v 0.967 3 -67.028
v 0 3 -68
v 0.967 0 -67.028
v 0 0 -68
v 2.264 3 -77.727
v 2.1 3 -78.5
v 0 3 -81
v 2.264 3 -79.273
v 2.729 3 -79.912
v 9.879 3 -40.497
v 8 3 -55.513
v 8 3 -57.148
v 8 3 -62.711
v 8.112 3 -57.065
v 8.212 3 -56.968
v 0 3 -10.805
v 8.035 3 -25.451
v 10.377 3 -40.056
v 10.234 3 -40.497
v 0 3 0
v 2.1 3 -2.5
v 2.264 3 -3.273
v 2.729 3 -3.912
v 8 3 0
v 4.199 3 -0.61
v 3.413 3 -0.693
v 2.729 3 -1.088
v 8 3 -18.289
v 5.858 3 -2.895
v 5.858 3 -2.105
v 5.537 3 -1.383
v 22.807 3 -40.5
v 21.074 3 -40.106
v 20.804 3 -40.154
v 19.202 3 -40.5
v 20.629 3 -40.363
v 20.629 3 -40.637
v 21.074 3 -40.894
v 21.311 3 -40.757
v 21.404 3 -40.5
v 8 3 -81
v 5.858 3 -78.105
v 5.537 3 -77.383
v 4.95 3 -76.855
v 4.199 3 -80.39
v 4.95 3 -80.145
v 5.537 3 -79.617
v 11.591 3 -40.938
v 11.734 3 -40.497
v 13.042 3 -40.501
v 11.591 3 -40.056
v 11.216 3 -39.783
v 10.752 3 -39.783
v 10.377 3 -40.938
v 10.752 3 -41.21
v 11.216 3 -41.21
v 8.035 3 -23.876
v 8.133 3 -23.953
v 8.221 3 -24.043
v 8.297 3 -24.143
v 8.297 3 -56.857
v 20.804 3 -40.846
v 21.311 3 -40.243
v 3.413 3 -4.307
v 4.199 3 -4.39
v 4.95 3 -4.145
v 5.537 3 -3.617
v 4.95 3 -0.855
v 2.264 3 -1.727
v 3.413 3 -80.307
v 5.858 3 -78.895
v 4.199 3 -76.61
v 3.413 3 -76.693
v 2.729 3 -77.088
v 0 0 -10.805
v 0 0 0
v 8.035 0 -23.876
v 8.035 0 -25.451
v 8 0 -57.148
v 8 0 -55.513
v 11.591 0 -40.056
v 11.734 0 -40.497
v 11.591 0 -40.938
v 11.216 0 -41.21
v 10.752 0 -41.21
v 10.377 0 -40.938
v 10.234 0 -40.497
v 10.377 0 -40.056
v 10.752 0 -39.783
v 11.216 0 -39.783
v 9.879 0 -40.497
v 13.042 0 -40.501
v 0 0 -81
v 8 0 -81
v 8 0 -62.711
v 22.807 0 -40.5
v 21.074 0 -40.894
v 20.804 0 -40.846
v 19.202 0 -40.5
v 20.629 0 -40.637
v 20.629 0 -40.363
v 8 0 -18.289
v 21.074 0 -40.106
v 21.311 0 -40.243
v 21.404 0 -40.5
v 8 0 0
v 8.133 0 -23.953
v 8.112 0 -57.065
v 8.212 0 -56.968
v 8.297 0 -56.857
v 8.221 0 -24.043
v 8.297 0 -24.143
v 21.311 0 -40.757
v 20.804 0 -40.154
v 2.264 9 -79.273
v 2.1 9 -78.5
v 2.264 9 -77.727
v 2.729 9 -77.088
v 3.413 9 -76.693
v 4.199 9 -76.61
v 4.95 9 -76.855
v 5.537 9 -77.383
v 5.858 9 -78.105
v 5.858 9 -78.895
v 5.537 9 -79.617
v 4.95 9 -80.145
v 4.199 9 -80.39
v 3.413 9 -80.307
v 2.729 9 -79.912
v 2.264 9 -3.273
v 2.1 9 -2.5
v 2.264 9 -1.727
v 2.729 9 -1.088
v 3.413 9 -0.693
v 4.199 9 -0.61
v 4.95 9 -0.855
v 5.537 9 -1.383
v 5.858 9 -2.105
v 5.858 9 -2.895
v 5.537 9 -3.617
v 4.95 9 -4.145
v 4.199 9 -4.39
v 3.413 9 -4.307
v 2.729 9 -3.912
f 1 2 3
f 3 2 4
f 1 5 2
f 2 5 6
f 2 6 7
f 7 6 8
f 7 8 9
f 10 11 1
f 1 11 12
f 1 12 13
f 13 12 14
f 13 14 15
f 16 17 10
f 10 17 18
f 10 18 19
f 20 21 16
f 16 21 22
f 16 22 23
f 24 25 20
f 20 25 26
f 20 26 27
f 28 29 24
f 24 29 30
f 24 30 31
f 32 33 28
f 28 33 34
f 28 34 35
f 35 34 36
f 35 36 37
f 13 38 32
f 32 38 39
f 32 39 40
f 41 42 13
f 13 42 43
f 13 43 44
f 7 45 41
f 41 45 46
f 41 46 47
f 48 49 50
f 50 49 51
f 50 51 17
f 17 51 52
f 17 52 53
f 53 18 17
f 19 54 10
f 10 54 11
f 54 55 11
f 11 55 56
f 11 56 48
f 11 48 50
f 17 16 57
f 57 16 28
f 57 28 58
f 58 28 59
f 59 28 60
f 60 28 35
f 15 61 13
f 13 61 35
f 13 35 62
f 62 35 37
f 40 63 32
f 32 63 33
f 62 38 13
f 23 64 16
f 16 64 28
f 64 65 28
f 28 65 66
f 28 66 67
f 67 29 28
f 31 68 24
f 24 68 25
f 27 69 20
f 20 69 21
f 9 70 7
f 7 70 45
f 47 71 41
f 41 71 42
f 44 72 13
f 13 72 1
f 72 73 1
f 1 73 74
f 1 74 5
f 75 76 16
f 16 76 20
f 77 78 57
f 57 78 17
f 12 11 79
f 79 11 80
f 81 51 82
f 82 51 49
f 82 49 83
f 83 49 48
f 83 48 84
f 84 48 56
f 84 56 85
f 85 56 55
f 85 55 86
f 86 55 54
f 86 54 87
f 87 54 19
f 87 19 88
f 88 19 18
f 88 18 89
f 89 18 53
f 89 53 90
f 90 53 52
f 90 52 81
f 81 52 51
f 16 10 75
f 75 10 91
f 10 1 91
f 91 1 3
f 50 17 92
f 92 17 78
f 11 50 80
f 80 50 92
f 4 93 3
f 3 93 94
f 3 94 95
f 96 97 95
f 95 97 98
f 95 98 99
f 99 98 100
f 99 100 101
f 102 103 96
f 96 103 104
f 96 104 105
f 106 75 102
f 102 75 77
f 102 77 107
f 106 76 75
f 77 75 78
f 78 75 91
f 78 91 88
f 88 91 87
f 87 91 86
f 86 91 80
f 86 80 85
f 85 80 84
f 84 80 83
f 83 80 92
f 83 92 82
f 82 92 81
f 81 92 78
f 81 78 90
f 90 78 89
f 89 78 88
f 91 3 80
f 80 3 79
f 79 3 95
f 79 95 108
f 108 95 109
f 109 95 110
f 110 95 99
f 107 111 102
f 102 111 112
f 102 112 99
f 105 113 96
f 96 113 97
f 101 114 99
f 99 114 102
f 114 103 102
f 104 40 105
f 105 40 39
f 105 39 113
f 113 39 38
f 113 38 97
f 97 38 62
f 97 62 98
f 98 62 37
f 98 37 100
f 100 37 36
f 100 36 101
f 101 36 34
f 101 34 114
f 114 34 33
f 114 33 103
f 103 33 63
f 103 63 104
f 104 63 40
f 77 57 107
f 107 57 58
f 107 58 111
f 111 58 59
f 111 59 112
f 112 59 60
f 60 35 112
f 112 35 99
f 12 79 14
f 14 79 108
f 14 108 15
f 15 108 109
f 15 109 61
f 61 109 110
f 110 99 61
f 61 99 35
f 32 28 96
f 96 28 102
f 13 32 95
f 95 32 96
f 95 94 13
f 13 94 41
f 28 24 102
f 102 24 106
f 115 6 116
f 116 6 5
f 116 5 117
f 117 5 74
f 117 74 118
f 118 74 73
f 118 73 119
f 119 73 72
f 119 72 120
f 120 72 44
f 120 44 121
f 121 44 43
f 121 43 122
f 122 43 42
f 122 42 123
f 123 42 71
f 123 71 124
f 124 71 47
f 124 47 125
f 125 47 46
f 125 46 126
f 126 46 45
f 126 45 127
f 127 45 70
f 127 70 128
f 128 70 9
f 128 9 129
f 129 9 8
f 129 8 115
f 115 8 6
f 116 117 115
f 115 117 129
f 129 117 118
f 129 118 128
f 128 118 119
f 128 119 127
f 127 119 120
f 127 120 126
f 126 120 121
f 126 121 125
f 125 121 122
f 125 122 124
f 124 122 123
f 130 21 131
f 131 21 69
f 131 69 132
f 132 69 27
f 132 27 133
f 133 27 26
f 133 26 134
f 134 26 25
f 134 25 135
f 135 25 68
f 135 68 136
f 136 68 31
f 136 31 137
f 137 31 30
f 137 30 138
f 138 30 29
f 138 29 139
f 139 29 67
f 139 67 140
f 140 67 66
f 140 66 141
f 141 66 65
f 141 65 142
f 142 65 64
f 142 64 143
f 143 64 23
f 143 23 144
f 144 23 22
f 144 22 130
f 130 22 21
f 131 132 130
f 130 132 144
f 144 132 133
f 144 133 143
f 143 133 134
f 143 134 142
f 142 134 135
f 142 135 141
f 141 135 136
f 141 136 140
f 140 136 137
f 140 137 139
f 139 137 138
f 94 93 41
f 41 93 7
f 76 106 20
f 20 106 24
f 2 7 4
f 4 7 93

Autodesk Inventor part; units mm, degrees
ref_plane "YZ Plane" through (0, 0, 0) normal (1, 0, 0) x (0, 1, 0)
ref_plane "XZ Plane" through (0, 0, 0) normal (0, 1, 0) x (-1, 0, 0)
ref_plane "XY Plane" through (0, 0, 0) normal (0, 0, 1) x (1, 0, 0)
sketch "Sketch1" plane through (0, 0, 0) normal (0, 1, 0) x (-1, 0, 0)
  line L0 (0, 0) -> (0, -81)
  line L1 (0, -81) -> (-8, -81)
  line L2 (-8, -81) -> (-8, 0)
  line L3 (0, 0) -> (-8, 0)
  line L4 (-4, 0) -> (-4, -2.5)
  line L5 (-4, -81) -> (-4, -78.5)
  circle A0 centre (-4, -2.5) radius 1.9
  circle A1 centre (-4, -78.5) radius 1.9
  dimension "d0" = 81
  dimension "d1" = 8
  dimension "d2" = 81
  dimension "d3" = 2.5
  dimension "d4" = 2.5
  dimension "d5" = 3.8
  dimension "d6" = 3.8
extrude "Extrusion1" add sketch "Sketch1" along normal blind 3
extrude "Extrusion2" add sketch "Sketch1" along normal blind 9 contours A0 | A1
sketch "Sketch2" plane through (0, 3, 0) normal (0, 1, 0) x (1, 0, 0)
  line L0 (8, 0) -> (8, 81) projected
  line L1 (8, 40.5) -> (18, 40.5)
  line L2 (8, 40.5) -> (8, 25.5)
  line L3 (8, 25.5) -> (0, 25.5)
  line L4 (0, 81) -> (0, 0) projected
  line L5 (8, 40.5) -> (8, 55.5)
  line L6 (8, 55.5) -> (0, 55.5)
  line L7 (0, 55.5) -> (0, 25.5)
  line L8 (8, 25.5) -> (18, 40.5)
  line L9 (8, 55.5) -> (18, 40.5)
  line L10 (8.8321, 24.9453) -> (18.8321, 39.9453)
  line L11 (8.8321, 56.0547) -> (18.8321, 41.0547)
  line L12 (8.8321, 24.9453) -> (8, 23.6972)
  line L13 (8, 23.6972) -> (8, 25.5)
  line L14 (8, 55.5) -> (8, 57.3028)
  line L15 (8.8321, 56.0547) -> (8, 57.3028)
  line L16 (18.8321, 39.9453) -> (19.2019, 40.5)
  line L17 (18.8321, 41.0547) -> (19.2019, 40.5)
  line L18 (5, 25.5) -> (5, 13.7889)
  line L19 (5, 13.7889) -> (11.3282, 23.2812)
  line L20 (11.3282, 23.2812) -> (21.3282, 38.2812)
  line L21 (21.3282, 38.2812) -> (22.8074, 40.5)
  line L22 (22.8074, 40.5) -> (21.3282, 42.7188)
  line L23 (21.3282, 42.7188) -> (11.3282, 57.7188)
  line L24 (11.3282, 57.7188) -> (5, 67.2111)
  line L25 (5, 67.2111) -> (5, 55.5)
  line L26 (8, 23.6972) -> (0, 23.6972)
  line L27 (0, 25.5) -> (0, 23.6972)
  line L28 (8, 57.3028) -> (0, 57.3028)
  line L29 (0, 57.3028) -> (0, 55.5)
  point P0 (8, 18.2889)
  point P1 (8, 62.7111)
  dimension "d11" = 10
  dimension "d12" = 15
  dimension "d13" = 15
  dimension "d14" = 1
  dimension "d15" = 1
  dimension "d16" = 3
extrude "Extrusion3" add sketch "Sketch2" against normal blind 3 contours L12 L10 L16 L17 L11 L15 L0 L24 L23 L22 L21 L20 L19
extrude "Extrusion4" cut sketch "Sketch2" against normal blind 3 contours L26 L18 L3 L0 | L3 L4 L6 L0 | L26 L4 L3 L18 | L6 L25 L28 L0 | L6 L4 L28 L25
chamfer "Chamfer1" distance 3 angle 45 2 edges at (0, 1.5, -57.3028) (0, 1.5, -23.6972)
fillet "Fillet1" radius 1 2 edges at (8, 1.5, -57.3028) (8, 1.5, -23.6972)
sketch "Sketch3" plane through (0, 3, 0) normal (0, 1, 0) x (1, 0, 0)
  line L0 (22.8074, 40.5) -> (8, 62.7111) projected
  line L1 (22.8074, 40.5) -> (21.0044, 40.5)
  circle A0 centre (21.0044, 40.5) radius 0.4
  point P0 (0, 0)
  dimension "d25" = 1.803
  dimension "d26" = 0.8
extrude "Extrusion5" cut sketch "Sketch3" against normal blind 3
sketch "Sketch4" plane through (0, 3, 0) normal (0, 1, 0) x (1, 0, 0)
  line L0 (0, 57.3028) -> (8.0349, 57.3028)
  line L1 (0, 57.3028) -> (0, 23.6972)
  line L2 (0, 23.6972) -> (8.0349, 23.6972)
  line L3 (8.0349, 23.6972) -> (8.0349, 57.3028)
  line L4 (0, 60.3028) -> (3, 57.3028) projected
  line L5 (0, 57.3028) -> (0, 60.3028)
  line L6 (0, 60.3028) -> (3, 57.3028)
  line L7 (0, 20.6972) -> (0, 0) projected
  line L8 (0, 20.6972) -> (0, 23.6972)
  line L9 (0, 20.6972) -> (3, 23.6972)
  line L10 (0, 57.3028) -> (8, 57.3028)
  line L11 (8, 57.3028) -> (8, 55.5125)
  line L12 (8, 55.5125) -> (0, 55.5125)
  line L13 (0, 55.5125) -> (0, 57.3028)
  line L14 (8, 55.5125) -> (13.0424, 40.5013)
  line L15 (13.0424, 40.5013) -> (8.0349, 25.4511)
  line L16 (4.5889, 24.5965) -> (9.8792, 40.4967)
  line L17 (9.8792, 40.4967) -> (4.5467, 56.3715)
  circle A0 centre (10.9842, 40.4967) radius 0.75
  line L18 (9.8792, 40.4967) -> (8.0349, 40.5)
  line L19 (9.8792, 40.4967) -> (10.9842, 40.4967)
  point P0 (8.0349, 45.9872)
  point P1 (8.0349, 34.9536)
  dimension "d29" = 8
  dimension "d30" = 3
  dimension "d31" = 1.5
  dimension "d36" = 1.8443
  dimension "d37" = 1.105
extrude "Extrusion6" add sketch "Sketch4" against normal blind 3 contours L5 L4 L0 | L0 L11 L12 L1 | L12 L17 L3 L2 L1 | L2 L9 L8 | L12 L14 L3 L17 | L3 L14 L15 L16 L17
sketch "Sketch5" plane through (0, 3, 0) normal (0, 1, 0) x (1, 0, 0)
  line L0 (8.0349, 45.9872) -> (8.0349, 34.9536) projected
  line L1 (8.0349, 34.9536) -> (0.9671, 13.7113)
  line L2 (9.8792, 40.4967) -> (8.0349, 34.9536) projected
  line L3 (9.8792, 40.4967) -> (8.0349, 45.9872) projected
  line L4 (9.8792, 40.4967) -> (0.9671, 67.0279)
  line L5 (0.9671, 67.0279) -> (0.9671, 13.7113)
  line L6 (0, 81) -> (0, 0) projected
  line L7 (8.0349, 45.9872) -> (8.0349, 34.9536)
  point P0 (8.0349, 45.9872)
extrude "Extrusion7" cut sketch "Sketch5" against normal blind 3 contours L0 L1 L5 L4
sketch "Sketch6" plane through (0, 3, 0) normal (0, 1, 0) x (1, 0, 0)
  line L0 (9.8792, 40.4967) -> (0.9671, 67.0279) projected
  line L1 (0.9671, 67.0279) -> (0, 68.0001)
  line L2 (0, 81) -> (0, 0) projected
  line L3 (9.8792, 40.4967) -> (0.9671, 13.7113) projected
  line L4 (0.9671, 13.7113) -> (0, 10.8046)
  line L5 (0.9671, 13.7113) -> (0.9671, 67.0279)
  line L6 (0, 68.0001) -> (0, 10.8046)
  point P0 (0, 63.7751)
  point P1 (0, 17.0581)
extrude "Extrusion8" cut sketch "Sketch6" against normal blind 3 contours L5 L4 L2 L1
properties part number "SteeringBaru"
